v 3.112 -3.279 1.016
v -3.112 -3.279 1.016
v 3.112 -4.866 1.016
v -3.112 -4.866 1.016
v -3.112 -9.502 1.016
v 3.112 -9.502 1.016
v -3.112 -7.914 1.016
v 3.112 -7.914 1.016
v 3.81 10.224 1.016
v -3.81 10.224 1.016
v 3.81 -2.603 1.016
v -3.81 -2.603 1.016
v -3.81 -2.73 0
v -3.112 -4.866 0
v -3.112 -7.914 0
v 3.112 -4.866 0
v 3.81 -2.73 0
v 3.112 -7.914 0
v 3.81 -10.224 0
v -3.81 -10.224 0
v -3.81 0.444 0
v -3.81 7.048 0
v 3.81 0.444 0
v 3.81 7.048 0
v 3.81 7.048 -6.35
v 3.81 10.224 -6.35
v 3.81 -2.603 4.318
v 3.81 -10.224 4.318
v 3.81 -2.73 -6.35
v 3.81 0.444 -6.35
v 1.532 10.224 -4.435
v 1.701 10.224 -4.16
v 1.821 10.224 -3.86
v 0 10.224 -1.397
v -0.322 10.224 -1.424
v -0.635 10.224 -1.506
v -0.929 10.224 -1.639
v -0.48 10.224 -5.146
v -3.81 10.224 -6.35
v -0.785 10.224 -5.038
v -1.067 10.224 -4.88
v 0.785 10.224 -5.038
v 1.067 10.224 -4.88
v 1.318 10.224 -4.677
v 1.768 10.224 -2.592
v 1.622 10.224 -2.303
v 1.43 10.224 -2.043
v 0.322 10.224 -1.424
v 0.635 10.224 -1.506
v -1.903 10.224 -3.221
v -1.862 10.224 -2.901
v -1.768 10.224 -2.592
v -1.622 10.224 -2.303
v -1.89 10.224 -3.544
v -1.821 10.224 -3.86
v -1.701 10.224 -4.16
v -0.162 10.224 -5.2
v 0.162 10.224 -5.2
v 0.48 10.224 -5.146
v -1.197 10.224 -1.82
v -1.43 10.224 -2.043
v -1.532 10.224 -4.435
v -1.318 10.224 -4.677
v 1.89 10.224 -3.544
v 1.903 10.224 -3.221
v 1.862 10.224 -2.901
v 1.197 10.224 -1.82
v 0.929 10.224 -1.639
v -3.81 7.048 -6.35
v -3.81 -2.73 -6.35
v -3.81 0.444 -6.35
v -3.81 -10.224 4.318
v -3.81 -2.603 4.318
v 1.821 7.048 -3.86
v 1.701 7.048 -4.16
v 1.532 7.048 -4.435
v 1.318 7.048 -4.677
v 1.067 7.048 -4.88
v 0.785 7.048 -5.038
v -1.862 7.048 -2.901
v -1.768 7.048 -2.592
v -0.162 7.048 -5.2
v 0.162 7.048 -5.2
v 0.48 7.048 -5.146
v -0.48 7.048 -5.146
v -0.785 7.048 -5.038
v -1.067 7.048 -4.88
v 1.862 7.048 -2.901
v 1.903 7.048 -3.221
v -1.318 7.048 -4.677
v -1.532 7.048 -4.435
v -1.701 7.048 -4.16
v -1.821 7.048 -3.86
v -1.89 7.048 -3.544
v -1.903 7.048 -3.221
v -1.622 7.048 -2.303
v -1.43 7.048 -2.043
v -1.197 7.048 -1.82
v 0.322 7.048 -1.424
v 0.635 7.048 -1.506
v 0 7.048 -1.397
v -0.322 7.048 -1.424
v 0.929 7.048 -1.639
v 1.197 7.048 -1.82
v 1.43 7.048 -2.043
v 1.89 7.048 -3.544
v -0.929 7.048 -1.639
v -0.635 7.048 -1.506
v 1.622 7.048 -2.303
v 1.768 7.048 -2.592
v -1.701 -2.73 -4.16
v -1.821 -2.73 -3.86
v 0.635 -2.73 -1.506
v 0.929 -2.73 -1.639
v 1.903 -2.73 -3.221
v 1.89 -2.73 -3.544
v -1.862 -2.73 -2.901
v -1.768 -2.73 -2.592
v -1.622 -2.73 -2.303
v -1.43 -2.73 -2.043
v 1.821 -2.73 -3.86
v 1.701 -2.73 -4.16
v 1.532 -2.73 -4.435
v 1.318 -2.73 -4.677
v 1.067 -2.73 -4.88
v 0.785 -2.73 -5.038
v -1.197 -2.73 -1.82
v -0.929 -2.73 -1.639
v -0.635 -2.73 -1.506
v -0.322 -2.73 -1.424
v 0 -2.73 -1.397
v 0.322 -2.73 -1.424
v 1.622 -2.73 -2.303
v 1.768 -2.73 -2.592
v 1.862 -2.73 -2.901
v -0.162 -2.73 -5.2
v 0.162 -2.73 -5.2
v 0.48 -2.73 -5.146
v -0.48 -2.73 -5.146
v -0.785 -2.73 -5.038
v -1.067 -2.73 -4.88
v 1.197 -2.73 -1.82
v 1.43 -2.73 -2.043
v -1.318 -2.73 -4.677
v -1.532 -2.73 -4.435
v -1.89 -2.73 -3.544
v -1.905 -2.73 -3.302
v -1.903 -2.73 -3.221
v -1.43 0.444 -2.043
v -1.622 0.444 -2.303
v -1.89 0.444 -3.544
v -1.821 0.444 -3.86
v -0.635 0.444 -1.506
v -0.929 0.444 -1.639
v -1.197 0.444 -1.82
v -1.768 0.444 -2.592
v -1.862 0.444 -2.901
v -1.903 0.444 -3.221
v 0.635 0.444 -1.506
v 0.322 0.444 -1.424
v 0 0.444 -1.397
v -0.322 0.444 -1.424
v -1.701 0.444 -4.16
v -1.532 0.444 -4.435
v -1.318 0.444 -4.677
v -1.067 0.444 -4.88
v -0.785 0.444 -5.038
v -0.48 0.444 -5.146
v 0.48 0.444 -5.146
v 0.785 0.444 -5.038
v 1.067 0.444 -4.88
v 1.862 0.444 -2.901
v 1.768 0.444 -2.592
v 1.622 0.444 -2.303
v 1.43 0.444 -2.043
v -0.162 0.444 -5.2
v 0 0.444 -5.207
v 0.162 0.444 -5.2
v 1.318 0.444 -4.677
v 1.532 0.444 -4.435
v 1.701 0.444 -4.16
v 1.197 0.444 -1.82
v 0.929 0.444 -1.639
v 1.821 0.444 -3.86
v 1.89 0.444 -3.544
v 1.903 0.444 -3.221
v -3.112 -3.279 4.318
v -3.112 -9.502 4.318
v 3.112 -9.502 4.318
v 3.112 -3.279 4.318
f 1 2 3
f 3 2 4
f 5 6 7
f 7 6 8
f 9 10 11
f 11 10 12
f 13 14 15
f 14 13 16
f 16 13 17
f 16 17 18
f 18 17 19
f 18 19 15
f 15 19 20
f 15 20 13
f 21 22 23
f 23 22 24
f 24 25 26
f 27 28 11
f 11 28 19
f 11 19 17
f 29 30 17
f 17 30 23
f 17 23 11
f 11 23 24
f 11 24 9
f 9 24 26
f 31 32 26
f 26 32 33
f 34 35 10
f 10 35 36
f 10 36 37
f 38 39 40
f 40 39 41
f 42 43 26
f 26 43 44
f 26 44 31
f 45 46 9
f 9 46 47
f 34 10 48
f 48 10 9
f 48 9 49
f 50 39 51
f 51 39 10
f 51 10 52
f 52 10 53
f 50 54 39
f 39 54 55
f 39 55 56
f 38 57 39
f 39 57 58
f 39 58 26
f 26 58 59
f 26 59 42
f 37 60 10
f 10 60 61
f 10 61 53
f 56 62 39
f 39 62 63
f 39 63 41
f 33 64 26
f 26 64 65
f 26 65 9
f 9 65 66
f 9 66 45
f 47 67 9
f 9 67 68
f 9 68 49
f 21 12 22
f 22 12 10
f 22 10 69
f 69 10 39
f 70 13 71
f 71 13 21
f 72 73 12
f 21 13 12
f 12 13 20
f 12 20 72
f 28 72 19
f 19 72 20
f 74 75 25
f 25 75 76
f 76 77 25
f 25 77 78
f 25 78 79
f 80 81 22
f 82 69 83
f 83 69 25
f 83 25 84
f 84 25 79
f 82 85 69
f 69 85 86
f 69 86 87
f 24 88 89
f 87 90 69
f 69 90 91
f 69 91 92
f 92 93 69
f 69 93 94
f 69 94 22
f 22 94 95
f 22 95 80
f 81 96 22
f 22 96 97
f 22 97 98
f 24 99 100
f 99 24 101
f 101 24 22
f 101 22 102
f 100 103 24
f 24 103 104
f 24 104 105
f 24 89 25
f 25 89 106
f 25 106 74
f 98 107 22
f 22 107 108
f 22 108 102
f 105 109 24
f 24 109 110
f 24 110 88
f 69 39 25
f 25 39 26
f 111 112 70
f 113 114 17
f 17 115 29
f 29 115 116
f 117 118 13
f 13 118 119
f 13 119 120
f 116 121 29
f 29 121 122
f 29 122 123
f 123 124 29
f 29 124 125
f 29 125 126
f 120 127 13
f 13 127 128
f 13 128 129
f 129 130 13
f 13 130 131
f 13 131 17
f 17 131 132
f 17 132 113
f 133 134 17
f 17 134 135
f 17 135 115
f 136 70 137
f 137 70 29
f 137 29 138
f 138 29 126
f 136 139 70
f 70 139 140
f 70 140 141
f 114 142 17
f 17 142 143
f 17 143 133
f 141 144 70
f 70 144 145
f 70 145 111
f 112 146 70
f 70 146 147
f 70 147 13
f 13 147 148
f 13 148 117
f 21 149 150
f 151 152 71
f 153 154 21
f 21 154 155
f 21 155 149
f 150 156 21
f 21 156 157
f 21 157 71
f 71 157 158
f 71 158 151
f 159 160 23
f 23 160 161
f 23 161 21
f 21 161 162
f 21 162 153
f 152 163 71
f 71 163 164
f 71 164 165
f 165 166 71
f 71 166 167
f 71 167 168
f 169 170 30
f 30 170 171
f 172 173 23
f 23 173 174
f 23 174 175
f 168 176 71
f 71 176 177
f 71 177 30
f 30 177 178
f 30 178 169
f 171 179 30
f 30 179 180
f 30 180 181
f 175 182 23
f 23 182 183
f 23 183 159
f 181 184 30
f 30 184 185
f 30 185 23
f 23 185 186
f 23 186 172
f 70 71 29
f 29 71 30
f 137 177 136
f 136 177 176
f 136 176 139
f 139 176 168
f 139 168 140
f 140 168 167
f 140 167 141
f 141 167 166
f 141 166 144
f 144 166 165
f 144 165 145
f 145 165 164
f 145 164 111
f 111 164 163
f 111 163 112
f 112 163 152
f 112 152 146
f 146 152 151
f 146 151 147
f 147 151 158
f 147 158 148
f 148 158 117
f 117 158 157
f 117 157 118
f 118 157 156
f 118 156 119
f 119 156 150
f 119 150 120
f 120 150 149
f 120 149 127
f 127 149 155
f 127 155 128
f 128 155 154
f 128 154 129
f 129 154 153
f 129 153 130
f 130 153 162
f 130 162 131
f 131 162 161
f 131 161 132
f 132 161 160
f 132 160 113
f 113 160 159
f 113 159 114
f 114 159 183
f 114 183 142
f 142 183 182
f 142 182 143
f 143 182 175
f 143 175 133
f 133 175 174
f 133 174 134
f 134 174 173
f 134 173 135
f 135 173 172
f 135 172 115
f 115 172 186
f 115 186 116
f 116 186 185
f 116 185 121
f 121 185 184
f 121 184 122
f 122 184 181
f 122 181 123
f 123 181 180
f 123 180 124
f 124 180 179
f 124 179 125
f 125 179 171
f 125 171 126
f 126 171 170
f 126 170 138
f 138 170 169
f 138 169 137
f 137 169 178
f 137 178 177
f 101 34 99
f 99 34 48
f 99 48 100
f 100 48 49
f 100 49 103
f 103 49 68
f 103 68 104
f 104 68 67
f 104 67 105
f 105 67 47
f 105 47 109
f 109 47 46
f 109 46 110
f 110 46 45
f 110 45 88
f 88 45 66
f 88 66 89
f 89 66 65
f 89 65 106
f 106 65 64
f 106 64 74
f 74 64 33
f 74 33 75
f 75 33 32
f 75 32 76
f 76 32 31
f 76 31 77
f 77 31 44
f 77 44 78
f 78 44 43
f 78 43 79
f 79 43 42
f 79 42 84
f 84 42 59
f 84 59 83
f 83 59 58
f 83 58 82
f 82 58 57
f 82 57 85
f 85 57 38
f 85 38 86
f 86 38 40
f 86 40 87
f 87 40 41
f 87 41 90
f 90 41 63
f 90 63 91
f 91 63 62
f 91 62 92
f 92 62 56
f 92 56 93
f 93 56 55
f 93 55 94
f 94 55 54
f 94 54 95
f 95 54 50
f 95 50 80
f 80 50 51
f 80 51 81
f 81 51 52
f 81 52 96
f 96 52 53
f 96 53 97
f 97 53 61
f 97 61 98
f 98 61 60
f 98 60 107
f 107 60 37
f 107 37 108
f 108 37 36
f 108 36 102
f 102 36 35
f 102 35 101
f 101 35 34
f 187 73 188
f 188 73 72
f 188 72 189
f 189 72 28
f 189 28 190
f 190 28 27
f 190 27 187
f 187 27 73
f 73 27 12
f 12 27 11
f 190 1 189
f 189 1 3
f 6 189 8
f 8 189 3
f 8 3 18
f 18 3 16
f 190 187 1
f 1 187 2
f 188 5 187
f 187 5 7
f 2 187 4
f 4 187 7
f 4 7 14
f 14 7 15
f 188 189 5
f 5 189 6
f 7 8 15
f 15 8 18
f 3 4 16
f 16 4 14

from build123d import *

# Parameters (mm, degrees)
SKETCH1_W           = 7.62
SKETCH1_H           = 20.447
BOSS_EXTRUDE1_DEPTH = 1.016
SKETCH2_W           = 7.62
SKETCH2_H           = 3.175
BOSS_EXTRUDE2_DEPTH = 6.35
SKETCH3_R           = 1.905
CUT_EXTRUDE1_DEPTH  = 22.746687311
SKETCH5_W           = 7.62
SKETCH5_H           = 7.62
SKETCH5_W_2         = 6.223
SKETCH5_H_2         = 6.223
BOSS_EXTRUDE3_DEPTH = 3.302
CUT_EXTRUDE3_DEPTH  = 14.16411821


with BuildPart() as part:
    # Sketch1 → Boss-Extrude1 (new body)
    with BuildSketch(Plane.XY):
        Rectangle(SKETCH1_W, SKETCH1_H)
    extrude(amount=BOSS_EXTRUDE1_DEPTH)

    # Sketch2 → Boss-Extrude2 (add)
    with BuildSketch(Plane(origin=(0, 0, 0), x_dir=(-1, 0, 0), z_dir=(0, 0, -1))):
        with Locations((0, 8.636)):
            Rectangle(SKETCH2_W, SKETCH2_H)
        with Locations((0, -1.143)):
            Rectangle(SKETCH2_W, SKETCH2_H)
    extrude(amount=BOSS_EXTRUDE2_DEPTH)

    # Sketch3 → Cut-Extrude1 (cut, through all)
    with BuildSketch(Plane(origin=(0, 10.2235, 0), x_dir=(1, 0, 0), z_dir=(0, 1, 0))):
        with Locations(Location((0, 3.302, 0), (0, 0, 180))):
            Circle(SKETCH3_R)
    extrude(amount=-CUT_EXTRUDE1_DEPTH, mode=Mode.SUBTRACT)

    # Sketch5 → Boss-Extrude3 (add)
    with BuildSketch(Plane.XY.offset(1.016)):
        with Locations((0, -6.4135)):
            Rectangle(SKETCH5_W, SKETCH5_H)
        with Locations((0, -6.39034895)):
            Rectangle(SKETCH5_W_2, SKETCH5_H_2, mode=Mode.SUBTRACT)
    extrude(amount=BOSS_EXTRUDE3_DEPTH)

    # Sketch7 → Cut-Extrude3 (cut, through all)
    with BuildSketch(Plane.XY.offset(1.016)):
        Polygon((-3.1115, -7.91434895), (-1.524, -7.91434895), (1.524, -7.91434895), (3.1115, -7.91434895), (3.1115, -4.86634895), (1.524, -4.86634895), (-1.524, -4.86634895), (-3.1115, -4.86634895), align=None)
    extrude(amount=-CUT_EXTRUDE3_DEPTH, mode=Mode.SUBTRACT)


solid = part.part
